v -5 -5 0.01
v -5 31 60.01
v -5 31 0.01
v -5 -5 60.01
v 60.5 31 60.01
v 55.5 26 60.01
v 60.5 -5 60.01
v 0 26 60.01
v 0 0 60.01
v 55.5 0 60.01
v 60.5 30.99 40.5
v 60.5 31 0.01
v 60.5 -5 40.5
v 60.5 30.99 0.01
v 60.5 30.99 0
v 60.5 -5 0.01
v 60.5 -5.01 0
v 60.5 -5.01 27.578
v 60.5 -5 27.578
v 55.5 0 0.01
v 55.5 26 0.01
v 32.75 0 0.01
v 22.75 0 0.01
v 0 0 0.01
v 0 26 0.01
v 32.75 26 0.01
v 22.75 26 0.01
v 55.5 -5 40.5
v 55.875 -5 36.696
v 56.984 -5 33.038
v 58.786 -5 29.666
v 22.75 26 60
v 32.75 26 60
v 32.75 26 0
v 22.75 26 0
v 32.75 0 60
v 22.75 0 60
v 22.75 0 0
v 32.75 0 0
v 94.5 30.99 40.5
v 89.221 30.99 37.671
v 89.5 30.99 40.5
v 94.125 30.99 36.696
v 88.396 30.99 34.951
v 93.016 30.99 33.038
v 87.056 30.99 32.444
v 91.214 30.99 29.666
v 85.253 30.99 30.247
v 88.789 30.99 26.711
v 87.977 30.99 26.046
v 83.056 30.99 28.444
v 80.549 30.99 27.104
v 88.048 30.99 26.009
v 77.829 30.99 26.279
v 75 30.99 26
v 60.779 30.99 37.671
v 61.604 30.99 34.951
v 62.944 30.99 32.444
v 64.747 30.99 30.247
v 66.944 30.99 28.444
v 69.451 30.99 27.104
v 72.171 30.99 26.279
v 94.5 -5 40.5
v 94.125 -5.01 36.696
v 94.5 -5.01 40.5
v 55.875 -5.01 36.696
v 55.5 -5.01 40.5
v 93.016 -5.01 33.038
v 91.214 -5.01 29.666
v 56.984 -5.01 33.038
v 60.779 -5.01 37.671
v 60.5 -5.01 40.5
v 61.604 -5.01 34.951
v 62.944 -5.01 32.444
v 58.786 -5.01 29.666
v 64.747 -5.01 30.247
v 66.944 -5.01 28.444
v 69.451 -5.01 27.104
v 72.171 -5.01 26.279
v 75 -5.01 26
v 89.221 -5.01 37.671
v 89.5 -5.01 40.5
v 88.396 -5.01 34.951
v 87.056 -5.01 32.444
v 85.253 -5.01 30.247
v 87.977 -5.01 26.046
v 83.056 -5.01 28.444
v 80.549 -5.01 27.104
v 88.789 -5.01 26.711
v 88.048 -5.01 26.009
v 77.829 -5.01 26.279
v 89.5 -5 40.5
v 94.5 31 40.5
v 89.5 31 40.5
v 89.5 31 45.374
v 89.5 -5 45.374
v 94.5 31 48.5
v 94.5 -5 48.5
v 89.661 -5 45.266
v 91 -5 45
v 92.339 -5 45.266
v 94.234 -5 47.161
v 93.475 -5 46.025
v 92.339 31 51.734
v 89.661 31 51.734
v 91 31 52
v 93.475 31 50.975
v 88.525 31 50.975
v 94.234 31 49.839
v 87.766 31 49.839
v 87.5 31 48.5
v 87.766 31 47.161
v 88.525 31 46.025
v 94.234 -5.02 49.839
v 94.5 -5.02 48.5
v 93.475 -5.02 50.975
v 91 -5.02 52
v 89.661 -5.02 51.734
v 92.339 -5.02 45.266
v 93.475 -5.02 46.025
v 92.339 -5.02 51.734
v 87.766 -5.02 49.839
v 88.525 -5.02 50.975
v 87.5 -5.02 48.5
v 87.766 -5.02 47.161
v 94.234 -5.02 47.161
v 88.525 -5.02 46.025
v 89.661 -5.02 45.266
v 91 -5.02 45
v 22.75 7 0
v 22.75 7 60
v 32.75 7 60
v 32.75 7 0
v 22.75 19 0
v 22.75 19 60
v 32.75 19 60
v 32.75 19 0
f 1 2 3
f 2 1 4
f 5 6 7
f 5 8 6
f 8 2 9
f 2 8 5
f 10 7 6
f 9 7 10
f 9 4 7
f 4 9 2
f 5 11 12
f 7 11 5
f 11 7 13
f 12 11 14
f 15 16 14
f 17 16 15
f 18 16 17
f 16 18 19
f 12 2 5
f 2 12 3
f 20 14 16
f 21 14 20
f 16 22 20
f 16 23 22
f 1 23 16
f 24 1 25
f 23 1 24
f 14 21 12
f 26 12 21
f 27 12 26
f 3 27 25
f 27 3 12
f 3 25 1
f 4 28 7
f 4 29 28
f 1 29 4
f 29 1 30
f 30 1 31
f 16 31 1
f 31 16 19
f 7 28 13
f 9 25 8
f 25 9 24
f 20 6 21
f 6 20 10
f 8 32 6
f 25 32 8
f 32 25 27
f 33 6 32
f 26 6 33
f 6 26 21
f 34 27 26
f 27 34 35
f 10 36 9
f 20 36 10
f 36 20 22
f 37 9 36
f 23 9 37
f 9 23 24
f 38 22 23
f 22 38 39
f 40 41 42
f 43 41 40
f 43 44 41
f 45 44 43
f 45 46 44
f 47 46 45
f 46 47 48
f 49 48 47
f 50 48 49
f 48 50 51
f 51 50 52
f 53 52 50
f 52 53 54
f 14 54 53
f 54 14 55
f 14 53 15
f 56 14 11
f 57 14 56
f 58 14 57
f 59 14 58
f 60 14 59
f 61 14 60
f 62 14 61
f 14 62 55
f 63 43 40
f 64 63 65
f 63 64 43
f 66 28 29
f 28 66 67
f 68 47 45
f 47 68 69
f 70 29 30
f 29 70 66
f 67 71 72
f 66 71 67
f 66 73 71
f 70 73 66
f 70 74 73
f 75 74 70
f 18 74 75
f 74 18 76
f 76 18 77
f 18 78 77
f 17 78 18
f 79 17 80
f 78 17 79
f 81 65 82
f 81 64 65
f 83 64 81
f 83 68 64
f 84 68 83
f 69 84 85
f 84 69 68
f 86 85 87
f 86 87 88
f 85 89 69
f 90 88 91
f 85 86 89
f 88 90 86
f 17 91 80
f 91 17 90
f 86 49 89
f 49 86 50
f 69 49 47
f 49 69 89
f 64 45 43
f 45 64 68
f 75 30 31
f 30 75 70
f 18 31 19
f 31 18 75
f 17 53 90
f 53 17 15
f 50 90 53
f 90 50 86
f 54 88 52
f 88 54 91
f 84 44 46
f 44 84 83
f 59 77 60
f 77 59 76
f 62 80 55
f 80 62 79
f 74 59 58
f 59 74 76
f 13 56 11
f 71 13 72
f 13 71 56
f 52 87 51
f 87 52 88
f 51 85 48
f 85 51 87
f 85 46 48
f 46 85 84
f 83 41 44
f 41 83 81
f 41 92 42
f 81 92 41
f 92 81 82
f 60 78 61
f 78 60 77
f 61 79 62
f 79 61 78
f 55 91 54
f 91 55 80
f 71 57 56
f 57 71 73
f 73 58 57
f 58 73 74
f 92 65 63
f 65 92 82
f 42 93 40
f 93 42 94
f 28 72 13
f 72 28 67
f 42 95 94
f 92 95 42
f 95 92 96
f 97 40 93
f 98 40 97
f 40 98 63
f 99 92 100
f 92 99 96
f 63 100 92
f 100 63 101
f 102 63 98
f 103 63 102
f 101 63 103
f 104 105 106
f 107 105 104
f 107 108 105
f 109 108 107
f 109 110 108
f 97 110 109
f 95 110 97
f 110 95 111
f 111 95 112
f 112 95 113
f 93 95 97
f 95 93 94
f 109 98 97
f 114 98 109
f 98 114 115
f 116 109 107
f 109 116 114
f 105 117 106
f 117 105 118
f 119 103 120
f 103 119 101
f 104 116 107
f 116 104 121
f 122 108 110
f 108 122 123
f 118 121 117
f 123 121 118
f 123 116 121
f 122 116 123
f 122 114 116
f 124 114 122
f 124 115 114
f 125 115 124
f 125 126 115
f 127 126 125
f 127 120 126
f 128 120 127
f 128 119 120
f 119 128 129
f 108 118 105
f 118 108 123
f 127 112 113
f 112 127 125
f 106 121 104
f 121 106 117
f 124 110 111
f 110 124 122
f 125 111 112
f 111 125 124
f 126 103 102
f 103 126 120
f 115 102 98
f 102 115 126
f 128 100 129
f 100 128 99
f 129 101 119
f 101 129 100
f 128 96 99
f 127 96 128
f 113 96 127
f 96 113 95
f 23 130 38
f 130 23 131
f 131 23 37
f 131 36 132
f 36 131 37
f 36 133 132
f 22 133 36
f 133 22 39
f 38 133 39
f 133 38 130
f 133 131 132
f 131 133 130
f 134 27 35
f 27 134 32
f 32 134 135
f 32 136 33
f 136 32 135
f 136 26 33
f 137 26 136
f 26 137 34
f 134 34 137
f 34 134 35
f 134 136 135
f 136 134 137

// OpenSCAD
// Generated by SolidPython 1.1.1 on 2022-06-05 17:54:14
$fn = 32;


union() {
	difference() {
		translate(v = [-5.0000000000, -5.0000000000, 0.0100000000]) {
			cube(size = [65.5000000000, 36.0000000000, 60.0000000000]);
		}
		cube(size = [55.5000000000, 26.0000000000, 60.0200000000]);
	}
	translate(v = [22.7500000000, 0, 0]) {
		cube(size = [10.0000000000, 7.0000000000, 60.0000000000]);
	}
	translate(v = [22.7500000000, 19.0000000000, 0]) {
		cube(size = [10.0000000000, 7.0000000000, 60.0000000000]);
	}
	union() {
		difference() {
			union() {
				translate(v = [75.0000000000, 30.9900000000, 40.5000000000]) {
					rotate(a = [90]) {
						cylinder(h = 36.0000000000, r = 19.5000000000);
					}
				}
				translate(v = [60.5000000000, 30.9900000000]) {
					rotate(a = [90]) {
						linear_extrude(height = 36.0000000000) {
							polygon(points = [[0, 0], [0, 40.5000000000], [27.5480468240, 26.0086759032]]);
						}
					}
				}
			}
			translate(v = [75.0000000000, 31.0000000000, 40.5000000000]) {
				rotate(a = [90]) {
					cylinder(h = 36.0200000000, r = 14.5000000000);
				}
			}
			translate(v = [55.5000000000, -5.0200000000, 40.5000000000]) {
				cube(size = [39.0000000000, 36.0200000000, 45.5000000000]);
			}
		}
		translate(v = [89.5000000000, -5.0000000000, 40.5000000000]) {
			cube(size = [5.0000000000, 36.0000000000, 8.0000000000]);
		}
		translate(v = [91.0000000000, 31.0000000000, 48.5000000000]) {
			rotate(a = [90]) {
				cylinder($fn = 16, h = 36.0200000000, r = 3.5000000000);
			}
		}
	}
}
/***********************************************
*********      SolidPython code:      **********
************************************************
 
from solid import *
from solid.utils import *
from math import *

# Constants
cm = 10
z = 0.01  # Fix z-fighting
z2 = 2*z
fn = 32  # Circle details

# Physical measurements
h = 6.0*cm  # Height of this thing
e_w = 5.55*cm  # Elvarli post width
e_d = 2.6*cm  # Elvarli post depth
i_w = 1.0*cm  # Indent width
i_d = 0.7*cm  # Indent depth
r_r = 1.45*cm  # Rod radius

# Parameters
p = 0.5*cm  # Padding around this thing
p2 = 2*p
r_p = 0.5*cm  # Rod holder padding
r_th = 0.8*cm  # Rod holder tip height
r_tr = r_p / 2 + 0.1*cm  # Rod holder tip radius


def generate_attachment_base():
    attachment = cube([e_w + p2, e_d + p2, h])
    attachment = translate([-p, -p, z])(attachment)
    attachment_hole = cube([e_w, e_d, h + z2])
    attachment -= attachment_hole

    attachment_indent = cube([i_w, i_d, h])
    attachment_indent_front = translate(
        [e_w / 2 - i_w / 2, 0, 0])(attachment_indent)
    attachment_indent_back = translate(
        [e_w / 2 - i_w / 2, e_d - i_d, 0])(attachment_indent)

    attachment += attachment_indent_front
    attachment += attachment_indent_back

    return attachment


def generate_rod_holder():
    holder = cylinder(r_r + r_p, e_d + p2)
    holder = rotate([90])(holder)
    holder = translate([e_w + p + r_r, e_d + p - z, h - r_r - r_p])(holder)

    angle = 42 / 180 * pi
    u_x, u_y = sin(angle), cos(angle)
    x, y = r_r + (r_r + r_p) * u_x, h - (r_r + r_p + (r_r + r_p) * u_y)
    support = linear_extrude(
        e_d + p2)(polygon([[0, 0], [0, h - r_r - r_p], [x, y]]))
    support = rotate([90])(support)
    support = translate([e_w + p, e_d + p - z])(support)
    holder += support

    holder_hole = cylinder(r_r, e_d + p2 + z2)
    holder_hole = rotate([90])(holder_hole)
    holder_hole = translate(
        [e_w + p + r_r, e_d + p, h - r_r - r_p])(holder_hole)
    holder -= holder_hole

    holder_top_cut = cube([(r_r + r_p) * 2, e_d + p2 + z2, h - r_r])
    holder_top_cut = translate([e_w, -p - z2, h - r_r - r_p])(holder_top_cut)
    holder -= holder_top_cut

    tip = cube([r_p, e_d + p2, r_th])
    tip = translate([e_w + p + r_r * 2, -p, h - r_r - r_p])(tip)
    holder += tip

    bevel_edge = cylinder(r_tr, e_d + p2 + z2, segments=16)
    bevel_edge = rotate([90])(bevel_edge)
    bevel_edge = translate(
        [e_w + p + r_r * 2 + r_p - r_tr, e_d + p, h - r_r - r_p + r_th])(bevel_edge)
    holder += bevel_edge

    return holder


model = generate_attachment_base() + generate_rod_holder()

scad_render_to_file(model, "ikea-elvarli-curtain-rod-holder.scad",
                    file_header=f"$fn = {fn};")
 
 
************************************************/
